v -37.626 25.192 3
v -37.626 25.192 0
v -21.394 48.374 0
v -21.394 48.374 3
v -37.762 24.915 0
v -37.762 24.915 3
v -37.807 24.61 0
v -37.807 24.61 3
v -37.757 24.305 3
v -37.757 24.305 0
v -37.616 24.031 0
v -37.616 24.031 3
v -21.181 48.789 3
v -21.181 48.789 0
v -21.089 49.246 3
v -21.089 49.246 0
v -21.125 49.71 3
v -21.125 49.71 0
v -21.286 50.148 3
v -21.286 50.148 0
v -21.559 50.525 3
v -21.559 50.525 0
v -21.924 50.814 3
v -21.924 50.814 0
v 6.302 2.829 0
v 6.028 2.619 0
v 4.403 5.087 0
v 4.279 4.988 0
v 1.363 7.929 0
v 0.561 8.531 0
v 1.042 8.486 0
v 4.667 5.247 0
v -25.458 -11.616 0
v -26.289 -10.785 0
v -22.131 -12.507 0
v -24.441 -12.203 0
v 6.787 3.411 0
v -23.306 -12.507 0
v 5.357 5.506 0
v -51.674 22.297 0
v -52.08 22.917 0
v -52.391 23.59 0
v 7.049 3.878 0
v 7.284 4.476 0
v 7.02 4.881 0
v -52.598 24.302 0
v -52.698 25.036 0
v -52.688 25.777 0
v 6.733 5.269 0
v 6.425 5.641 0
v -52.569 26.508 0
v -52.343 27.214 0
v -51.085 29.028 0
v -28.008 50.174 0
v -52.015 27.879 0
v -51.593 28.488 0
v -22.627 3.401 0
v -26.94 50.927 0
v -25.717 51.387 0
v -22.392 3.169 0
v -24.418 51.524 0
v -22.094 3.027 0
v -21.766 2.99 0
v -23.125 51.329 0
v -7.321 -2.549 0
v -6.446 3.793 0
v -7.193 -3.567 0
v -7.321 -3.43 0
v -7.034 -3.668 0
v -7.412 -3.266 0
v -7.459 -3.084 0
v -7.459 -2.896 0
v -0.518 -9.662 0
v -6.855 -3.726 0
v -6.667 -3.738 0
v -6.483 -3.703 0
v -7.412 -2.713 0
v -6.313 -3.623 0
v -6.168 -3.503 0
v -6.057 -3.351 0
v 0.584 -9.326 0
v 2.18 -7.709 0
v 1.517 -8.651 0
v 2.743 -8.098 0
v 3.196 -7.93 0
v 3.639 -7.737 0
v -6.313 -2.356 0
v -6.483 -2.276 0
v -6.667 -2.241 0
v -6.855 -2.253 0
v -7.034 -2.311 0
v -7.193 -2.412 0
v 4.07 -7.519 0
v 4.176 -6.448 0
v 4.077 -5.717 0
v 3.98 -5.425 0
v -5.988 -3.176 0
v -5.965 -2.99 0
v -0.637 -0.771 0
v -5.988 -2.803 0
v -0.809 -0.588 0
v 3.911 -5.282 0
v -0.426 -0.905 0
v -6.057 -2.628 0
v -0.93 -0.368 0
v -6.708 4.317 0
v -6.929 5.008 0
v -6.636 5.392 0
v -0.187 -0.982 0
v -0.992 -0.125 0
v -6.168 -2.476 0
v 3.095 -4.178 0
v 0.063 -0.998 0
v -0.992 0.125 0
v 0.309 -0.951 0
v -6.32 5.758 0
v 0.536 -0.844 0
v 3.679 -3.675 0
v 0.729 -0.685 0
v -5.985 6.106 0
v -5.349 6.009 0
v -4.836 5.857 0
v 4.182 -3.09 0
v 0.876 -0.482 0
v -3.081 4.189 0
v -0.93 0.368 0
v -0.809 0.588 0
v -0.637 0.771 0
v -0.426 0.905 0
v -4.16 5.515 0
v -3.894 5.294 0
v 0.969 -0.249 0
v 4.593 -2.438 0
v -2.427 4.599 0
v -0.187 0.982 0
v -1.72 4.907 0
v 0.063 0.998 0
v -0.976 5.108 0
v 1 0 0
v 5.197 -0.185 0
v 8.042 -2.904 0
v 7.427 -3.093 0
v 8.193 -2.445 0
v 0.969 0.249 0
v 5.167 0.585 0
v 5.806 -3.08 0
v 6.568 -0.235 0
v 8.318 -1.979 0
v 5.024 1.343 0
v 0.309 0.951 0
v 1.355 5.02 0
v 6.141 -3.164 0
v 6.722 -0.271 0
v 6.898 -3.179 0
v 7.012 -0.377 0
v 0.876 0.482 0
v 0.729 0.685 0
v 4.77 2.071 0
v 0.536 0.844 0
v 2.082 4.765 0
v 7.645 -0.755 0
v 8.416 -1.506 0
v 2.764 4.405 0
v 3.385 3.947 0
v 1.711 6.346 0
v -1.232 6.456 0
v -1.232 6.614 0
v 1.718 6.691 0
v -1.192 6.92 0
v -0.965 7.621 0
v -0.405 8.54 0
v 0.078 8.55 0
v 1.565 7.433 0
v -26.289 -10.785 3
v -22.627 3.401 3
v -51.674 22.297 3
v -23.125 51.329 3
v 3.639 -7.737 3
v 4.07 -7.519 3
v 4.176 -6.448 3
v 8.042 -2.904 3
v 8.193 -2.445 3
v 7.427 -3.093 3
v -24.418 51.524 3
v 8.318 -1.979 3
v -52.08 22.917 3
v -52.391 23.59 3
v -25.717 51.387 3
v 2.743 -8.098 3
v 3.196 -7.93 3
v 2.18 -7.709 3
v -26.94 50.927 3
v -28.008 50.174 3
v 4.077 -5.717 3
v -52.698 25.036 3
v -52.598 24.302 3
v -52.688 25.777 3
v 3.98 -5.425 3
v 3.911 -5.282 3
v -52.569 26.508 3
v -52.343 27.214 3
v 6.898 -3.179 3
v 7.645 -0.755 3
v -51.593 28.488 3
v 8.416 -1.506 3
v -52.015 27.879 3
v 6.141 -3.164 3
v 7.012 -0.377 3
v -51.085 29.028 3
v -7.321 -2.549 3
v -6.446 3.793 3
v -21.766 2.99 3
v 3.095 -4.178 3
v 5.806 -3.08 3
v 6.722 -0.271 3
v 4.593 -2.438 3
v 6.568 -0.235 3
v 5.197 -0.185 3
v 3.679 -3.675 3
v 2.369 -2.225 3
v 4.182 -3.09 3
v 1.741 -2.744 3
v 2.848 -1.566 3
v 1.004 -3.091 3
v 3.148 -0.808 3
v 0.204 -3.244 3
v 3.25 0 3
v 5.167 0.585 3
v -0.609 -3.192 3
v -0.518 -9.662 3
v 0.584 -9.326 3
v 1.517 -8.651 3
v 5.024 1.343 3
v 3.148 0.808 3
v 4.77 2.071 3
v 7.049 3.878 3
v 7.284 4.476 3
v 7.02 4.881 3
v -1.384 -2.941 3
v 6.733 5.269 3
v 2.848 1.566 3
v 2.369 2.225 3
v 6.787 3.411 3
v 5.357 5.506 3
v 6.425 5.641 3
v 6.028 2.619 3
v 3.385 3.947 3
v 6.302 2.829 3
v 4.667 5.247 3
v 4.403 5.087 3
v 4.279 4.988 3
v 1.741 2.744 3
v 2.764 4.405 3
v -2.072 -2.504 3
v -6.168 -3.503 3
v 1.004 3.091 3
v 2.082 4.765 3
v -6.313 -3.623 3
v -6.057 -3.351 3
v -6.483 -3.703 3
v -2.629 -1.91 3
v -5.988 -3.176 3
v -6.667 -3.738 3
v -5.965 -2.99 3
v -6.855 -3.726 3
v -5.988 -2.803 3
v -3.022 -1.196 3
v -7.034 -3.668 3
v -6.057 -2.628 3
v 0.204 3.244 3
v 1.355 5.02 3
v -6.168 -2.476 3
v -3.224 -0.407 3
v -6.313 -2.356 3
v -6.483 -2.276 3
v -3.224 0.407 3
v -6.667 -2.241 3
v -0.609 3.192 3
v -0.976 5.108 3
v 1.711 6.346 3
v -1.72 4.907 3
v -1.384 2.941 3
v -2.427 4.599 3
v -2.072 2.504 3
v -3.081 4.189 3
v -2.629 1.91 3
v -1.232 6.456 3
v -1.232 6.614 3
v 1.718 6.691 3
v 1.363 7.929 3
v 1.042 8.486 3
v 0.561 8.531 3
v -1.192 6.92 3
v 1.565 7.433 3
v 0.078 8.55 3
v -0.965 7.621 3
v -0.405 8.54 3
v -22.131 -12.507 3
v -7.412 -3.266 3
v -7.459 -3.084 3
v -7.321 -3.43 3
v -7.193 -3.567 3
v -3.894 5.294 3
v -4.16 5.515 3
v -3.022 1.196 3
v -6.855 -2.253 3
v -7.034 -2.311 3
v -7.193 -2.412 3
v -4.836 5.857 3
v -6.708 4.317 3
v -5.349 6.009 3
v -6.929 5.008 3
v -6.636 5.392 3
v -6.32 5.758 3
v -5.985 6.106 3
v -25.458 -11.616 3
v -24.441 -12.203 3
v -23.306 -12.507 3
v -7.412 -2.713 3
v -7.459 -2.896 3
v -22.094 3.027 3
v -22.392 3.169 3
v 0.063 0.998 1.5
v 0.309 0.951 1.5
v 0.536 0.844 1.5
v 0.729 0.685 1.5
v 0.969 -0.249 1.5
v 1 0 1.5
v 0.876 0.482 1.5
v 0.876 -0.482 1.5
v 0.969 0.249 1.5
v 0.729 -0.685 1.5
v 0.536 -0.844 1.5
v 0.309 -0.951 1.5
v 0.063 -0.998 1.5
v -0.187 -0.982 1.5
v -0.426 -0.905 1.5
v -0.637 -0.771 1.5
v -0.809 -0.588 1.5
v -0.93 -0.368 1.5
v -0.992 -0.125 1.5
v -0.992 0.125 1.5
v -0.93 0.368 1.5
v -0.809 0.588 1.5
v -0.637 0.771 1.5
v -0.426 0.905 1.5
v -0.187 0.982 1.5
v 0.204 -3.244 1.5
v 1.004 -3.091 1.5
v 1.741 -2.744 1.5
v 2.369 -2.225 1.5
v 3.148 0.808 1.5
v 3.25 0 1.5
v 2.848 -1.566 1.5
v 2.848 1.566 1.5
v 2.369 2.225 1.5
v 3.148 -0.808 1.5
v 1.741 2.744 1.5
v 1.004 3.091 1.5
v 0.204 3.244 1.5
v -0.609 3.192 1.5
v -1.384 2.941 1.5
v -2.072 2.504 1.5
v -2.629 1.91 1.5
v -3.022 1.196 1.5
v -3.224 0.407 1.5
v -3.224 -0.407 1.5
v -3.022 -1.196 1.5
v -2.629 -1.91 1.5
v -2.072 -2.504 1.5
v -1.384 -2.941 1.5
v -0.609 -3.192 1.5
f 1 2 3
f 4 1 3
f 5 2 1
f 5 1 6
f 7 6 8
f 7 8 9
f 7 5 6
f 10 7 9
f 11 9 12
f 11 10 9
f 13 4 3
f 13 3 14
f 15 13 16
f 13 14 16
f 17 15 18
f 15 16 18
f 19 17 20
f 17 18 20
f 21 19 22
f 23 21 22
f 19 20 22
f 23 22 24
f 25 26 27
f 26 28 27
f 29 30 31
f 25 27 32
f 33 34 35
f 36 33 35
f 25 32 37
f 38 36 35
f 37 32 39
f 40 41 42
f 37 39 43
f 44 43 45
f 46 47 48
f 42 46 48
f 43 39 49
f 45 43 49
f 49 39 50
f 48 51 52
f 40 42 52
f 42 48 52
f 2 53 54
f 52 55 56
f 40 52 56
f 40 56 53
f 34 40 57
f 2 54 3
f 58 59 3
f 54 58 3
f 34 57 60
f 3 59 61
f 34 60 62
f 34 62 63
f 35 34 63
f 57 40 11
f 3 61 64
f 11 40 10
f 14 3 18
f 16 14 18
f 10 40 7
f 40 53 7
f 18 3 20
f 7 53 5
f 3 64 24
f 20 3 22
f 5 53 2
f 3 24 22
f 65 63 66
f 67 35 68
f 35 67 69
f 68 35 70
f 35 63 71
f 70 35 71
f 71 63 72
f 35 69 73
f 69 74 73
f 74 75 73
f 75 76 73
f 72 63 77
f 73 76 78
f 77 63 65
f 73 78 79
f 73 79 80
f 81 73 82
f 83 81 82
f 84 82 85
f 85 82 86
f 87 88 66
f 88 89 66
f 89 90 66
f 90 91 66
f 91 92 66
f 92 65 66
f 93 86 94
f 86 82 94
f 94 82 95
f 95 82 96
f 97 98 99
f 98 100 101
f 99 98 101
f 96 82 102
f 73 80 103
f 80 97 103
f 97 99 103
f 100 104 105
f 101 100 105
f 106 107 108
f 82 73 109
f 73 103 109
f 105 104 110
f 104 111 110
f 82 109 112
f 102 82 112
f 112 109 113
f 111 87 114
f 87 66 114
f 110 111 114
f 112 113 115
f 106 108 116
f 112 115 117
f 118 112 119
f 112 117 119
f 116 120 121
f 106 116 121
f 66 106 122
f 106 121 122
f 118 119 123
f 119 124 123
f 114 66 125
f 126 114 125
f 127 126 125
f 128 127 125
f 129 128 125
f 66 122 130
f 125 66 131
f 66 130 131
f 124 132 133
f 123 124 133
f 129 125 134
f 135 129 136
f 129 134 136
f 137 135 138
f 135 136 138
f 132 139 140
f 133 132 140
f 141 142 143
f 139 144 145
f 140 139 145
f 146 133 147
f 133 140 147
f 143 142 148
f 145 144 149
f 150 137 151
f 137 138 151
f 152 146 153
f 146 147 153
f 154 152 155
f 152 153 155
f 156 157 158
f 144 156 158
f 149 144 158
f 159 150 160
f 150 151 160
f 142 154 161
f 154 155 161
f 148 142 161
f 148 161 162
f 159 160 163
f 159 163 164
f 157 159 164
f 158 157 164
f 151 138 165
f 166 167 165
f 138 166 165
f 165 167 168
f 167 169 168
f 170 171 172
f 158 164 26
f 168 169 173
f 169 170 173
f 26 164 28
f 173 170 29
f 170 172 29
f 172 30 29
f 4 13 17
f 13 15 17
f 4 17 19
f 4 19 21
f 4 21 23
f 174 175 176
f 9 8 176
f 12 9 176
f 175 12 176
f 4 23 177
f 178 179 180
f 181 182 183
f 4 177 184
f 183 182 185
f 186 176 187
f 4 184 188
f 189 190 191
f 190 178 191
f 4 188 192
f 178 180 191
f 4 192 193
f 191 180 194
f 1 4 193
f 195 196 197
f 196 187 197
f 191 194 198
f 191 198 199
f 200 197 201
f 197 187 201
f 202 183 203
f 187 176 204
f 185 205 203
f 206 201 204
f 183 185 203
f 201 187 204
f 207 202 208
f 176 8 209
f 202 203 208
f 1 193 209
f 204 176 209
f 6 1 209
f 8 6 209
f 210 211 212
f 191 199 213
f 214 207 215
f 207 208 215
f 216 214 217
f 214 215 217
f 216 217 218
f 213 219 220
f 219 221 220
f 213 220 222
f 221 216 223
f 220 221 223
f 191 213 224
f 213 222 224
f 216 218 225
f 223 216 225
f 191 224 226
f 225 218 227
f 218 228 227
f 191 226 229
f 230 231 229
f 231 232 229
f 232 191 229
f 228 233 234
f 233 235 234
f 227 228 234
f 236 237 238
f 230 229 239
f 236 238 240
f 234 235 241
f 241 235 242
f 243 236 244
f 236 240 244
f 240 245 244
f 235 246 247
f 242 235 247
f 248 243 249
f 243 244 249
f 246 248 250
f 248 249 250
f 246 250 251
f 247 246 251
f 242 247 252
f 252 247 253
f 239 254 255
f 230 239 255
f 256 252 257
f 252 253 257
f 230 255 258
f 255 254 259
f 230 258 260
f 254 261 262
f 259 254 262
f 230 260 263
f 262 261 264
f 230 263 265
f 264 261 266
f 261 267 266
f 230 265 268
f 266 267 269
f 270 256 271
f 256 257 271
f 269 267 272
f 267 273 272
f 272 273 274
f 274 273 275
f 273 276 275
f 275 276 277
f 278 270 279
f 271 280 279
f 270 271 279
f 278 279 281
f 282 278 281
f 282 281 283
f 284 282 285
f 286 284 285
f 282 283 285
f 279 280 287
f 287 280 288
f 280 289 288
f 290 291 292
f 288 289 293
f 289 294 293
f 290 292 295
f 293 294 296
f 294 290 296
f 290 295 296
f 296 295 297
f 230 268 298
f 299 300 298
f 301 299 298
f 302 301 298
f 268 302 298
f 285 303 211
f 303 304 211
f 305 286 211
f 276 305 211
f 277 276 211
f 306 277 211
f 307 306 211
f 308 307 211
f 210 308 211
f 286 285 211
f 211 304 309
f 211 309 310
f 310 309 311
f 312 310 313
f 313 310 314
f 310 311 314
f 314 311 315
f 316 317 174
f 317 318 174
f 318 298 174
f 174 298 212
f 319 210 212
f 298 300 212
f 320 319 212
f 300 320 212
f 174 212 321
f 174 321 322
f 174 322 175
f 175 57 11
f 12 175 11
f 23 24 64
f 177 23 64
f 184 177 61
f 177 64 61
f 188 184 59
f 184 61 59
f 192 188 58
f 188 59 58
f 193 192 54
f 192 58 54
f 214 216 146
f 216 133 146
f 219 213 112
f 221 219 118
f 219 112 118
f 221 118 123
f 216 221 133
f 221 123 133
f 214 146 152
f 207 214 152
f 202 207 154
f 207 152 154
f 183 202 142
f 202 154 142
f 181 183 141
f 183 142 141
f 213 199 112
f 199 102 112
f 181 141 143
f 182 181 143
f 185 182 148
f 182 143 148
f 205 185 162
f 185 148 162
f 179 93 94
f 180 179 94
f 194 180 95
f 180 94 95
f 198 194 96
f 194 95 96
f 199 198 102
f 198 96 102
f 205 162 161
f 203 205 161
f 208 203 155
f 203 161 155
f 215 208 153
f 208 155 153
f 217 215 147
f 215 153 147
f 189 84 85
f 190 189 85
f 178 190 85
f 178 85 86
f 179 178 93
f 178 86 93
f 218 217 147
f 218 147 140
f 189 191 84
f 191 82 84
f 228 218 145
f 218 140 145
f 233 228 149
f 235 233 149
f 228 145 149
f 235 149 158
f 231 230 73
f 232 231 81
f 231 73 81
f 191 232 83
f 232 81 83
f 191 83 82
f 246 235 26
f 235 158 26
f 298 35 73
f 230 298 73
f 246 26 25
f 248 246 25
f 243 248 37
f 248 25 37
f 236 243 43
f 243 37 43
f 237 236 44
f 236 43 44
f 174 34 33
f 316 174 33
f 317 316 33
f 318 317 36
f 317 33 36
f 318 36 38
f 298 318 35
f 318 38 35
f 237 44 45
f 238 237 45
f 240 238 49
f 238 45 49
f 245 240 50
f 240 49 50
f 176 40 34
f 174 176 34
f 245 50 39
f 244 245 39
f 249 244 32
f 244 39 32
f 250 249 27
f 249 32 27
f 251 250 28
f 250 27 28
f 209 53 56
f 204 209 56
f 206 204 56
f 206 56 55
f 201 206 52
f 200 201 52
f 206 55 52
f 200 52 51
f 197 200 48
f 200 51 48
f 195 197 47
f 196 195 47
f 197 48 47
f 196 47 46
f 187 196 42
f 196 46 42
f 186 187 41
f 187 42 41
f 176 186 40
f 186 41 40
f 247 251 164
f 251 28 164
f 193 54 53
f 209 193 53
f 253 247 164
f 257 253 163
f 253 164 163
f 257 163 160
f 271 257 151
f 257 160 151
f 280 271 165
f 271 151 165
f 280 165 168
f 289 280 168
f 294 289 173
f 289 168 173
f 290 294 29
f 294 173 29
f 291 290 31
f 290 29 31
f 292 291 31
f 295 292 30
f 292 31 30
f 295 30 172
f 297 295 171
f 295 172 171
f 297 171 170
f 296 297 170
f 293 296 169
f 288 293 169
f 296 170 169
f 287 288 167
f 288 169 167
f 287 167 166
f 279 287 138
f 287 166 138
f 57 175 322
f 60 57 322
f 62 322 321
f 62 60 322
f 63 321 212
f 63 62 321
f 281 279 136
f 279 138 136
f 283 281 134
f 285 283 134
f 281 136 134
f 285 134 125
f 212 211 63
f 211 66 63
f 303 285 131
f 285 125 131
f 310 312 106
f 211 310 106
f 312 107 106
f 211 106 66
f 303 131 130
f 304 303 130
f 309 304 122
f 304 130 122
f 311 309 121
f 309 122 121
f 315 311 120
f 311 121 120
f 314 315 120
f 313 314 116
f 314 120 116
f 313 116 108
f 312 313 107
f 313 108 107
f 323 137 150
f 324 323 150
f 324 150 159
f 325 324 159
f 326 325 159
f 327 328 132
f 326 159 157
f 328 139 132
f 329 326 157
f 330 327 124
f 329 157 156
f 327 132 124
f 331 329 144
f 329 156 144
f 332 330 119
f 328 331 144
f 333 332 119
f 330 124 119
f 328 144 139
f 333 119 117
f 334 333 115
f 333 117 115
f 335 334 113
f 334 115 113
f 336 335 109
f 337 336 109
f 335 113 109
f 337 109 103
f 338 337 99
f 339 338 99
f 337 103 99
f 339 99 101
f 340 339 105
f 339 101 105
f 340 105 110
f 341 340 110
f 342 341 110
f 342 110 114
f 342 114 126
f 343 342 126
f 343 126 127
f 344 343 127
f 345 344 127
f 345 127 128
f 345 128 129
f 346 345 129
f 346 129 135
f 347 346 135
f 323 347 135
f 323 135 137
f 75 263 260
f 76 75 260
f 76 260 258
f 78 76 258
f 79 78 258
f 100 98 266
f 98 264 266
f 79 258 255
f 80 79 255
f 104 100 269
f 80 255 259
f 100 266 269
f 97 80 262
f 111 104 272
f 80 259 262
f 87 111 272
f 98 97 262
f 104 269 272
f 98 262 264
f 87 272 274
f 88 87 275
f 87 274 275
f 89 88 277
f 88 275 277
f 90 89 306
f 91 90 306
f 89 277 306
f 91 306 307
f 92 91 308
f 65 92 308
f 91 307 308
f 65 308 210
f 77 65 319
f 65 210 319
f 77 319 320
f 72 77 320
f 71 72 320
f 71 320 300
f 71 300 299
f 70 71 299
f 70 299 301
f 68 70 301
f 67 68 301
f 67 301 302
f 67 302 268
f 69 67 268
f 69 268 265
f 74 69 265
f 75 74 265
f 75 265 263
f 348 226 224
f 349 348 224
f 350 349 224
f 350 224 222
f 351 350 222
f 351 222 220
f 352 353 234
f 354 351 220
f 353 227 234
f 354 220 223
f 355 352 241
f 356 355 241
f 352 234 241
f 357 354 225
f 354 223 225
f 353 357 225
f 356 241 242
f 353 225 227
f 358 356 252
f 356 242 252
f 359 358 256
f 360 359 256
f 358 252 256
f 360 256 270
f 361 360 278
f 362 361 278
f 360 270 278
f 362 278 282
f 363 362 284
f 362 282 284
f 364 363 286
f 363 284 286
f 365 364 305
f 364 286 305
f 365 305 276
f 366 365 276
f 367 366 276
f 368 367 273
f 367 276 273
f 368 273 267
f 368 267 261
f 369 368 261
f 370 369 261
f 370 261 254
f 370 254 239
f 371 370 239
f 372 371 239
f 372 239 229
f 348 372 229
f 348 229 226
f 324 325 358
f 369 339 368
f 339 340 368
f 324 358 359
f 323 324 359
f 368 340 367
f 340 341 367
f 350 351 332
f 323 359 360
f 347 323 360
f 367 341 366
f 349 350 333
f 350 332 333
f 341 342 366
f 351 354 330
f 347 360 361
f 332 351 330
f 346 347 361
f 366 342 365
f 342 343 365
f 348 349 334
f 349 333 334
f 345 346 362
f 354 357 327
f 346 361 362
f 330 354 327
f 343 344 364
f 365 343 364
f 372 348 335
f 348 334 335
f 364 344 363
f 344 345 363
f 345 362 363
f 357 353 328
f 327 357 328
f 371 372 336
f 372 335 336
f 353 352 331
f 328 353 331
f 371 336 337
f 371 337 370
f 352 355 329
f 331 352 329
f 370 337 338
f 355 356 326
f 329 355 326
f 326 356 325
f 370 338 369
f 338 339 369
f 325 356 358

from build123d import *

# Parameters (mm, degrees)
PAD_DEPTH                                 = 3
EXTRUDE_DEPTH                             = 3
EXTRUDE_ONTO_INVOLUTEGEAR_PLACEMENT_ANGLE = -15
SKETCH001_R                               = 3.25
POCKET_DEPTH                              = 1.5
SKETCH002_R                               = 1
POCKET001_DEPTH                           = 3.001
SKETCH003_R                               = 0.75
POCKET002_DEPTH                           = 3.001


with BuildPart() as claw_body:
    # Sketch → Pad (new body)
    with BuildSketch(Plane.XY):
        with BuildLine():
            ThreePointArc((2.197615, -4.7128), (3.983431, 3.342496), (-4.259591, 2.982597))
            Line((-5.488319, 3.842962), (-4.259591, 2.982597))
            Line((-5.488319, 3.842962), (-21.76598, 2.989886))
            ThreePointArc((-22.627333, 3.40073), (-22.248827, 3.08593), (-21.76598, 2.989886))
            Line((-22.627333, 3.40073), (-37.615857, 24.030664))
            ThreePointArc((-37.625992, 25.192025), (-37.806802, 24.609722), (-37.615857, 24.030664))
            Line((-37.625992, 25.192025), (-21.393779, 48.374028))
            ThreePointArc((-21.393779, 48.374028), (-21.125112, 49.710122), (-21.924071, 50.814201))
            ThreePointArc((-21.924071, 50.814201), (-25.071791, 51.496726), (-28.008332, 50.173585))
            Line((-28.008332, 50.173585), (-51.085112, 29.027611))
            ThreePointArc((-51.085112, 29.027611), (-52.688135, 25.777003), (-51.673928, 22.297417))
            Line((-51.673928, 22.297417), (-26.288576, -10.785417))
            ThreePointArc((-26.288576, -10.785417), (-24.440562, -12.203448), (-22.131119, -12.507492))
            Line((-22.131119, -12.507492), (-0.517621, -9.662021))
            ThreePointArc((-0.517621, -9.662021), (2.094081, -7.875425), (2.197615, -4.7128))
        make_face()
    extrude(amount=PAD_DEPTH)


with BuildPart() as horn_drill:
    # InvoluteGear as drawn → Extrude (new)
    with BuildSketch(Plane.XY):
        with BuildLine():
            Line((4.810602, -1.107072), (6.405135, -1.472675))
            add(Edge.make_bspline(
                [(6.405135, -1.472675), (6.508382, -1.483345), (6.922829, -1.512197), (7.670072, -1.341281), (8.519169, -0.723794)],
                knots=[0, 0, 0, 0, 0, 1, 1, 1, 1, 1], degree=4))
            ThreePointArc((8.519169, -0.723794), (8.54986, 0), (8.519169, 0.723794))
            add(Edge.make_bspline(
                [(8.519169, 0.723794), (7.670072, 1.341281), (6.922829, 1.512197), (6.508382, 1.483345), (6.405135, 1.472675)],
                knots=[0, 0, 0, 0, 0, 1, 1, 1, 1, 1], degree=4))
            Line((6.405135, 1.472675), (4.810602, 1.107072))
            ThreePointArc((4.810602, 1.107072), (4.31977, 1.170473), (3.988644, 1.538293))
            ThreePointArc((3.988644, 1.538293), (3.851642, 1.854853), (3.689565, 2.159338))
            ThreePointArc((3.689565, 2.159338), (3.608445, 2.647554), (3.864905, 3.070832))
            Line((3.864905, 3.070832), (5.14492, 4.089539))
            add(Edge.make_bspline(
                [(5.14492, 4.089539), (5.217636, 4.163608), (5.498597, 4.469646), (5.830867, 5.160429), (5.8775, 6.209276)],
                knots=[0, 0, 0, 0, 0, 1, 1, 1, 1, 1], degree=4))
            ThreePointArc((5.8775, 6.209276), (5.330751, 6.68455), (4.74573, 7.111832))
            add(Edge.make_bspline(
                [(4.74573, 7.111832), (3.733556, 6.832978), (3.13403, 6.355326), (2.898184, 6.013309), (2.842153, 5.925934)],
                knots=[0, 0, 0, 0, 0, 1, 1, 1, 1, 1], degree=4))
            Line((2.842153, 5.925934), (2.133817, 4.451328))
            ThreePointArc((2.133817, 4.451328), (1.77822, 4.10711), (1.284193, 4.077557))
            ThreePointArc((1.284193, 4.077557), (0.951277, 4.167817), (0.612168, 4.230943))
            ThreePointArc((0.612168, 4.230943), (0.179887, 4.471919), (0.008856, 4.936337))
            Line((0.008856, 4.936337), (0.010475, 6.572246))
            add(Edge.make_bspline(
                [(0.010475, 6.572246), (-0.002097, 6.675279), (-0.066191, 7.085755), (-0.3991, 7.77623), (-1.190047, 8.466635)],
                knots=[0, 0, 0, 0, 0, 1, 1, 1, 1, 1], degree=4))
            ThreePointArc((-1.190047, 8.466635), (-1.902523, 8.335497), (-2.60134, 8.144516))
            add(Edge.make_bspline(
                [(-2.60134, 8.144516), (-3.014403, 7.179304), (-3.014758, 6.412764), (-2.894406, 6.015128), (-2.861029, 5.916844)],
                knots=[0, 0, 0, 0, 0, 1, 1, 1, 1, 1], degree=4))
            Line((-2.861029, 5.916844), (-2.149775, 4.443643))
            ThreePointArc((-2.149775, 4.443643), (-2.102366, 3.951009), (-2.387281, 3.546338))
            ThreePointArc((-2.387281, 3.546338), (-2.665419, 3.34233), (-2.926204, 3.116562))
            ThreePointArc((-2.926204, 3.116562), (-3.384129, 2.928837), (-3.853862, 3.08468))
            Line((-3.853862, 3.08468), (-5.131858, 4.105918))
            add(Edge.make_bspline(
                [(-5.131858, 4.105918), (-5.220251, 4.160329), (-5.581136, 4.366146), (-6.328536, 4.536371), (-7.361464, 4.348444)],
                knots=[0, 0, 0, 0, 0, 1, 1, 1, 1, 1], degree=4))
            ThreePointArc((-7.361464, 4.348444), (-7.703158, 3.709645), (-7.989548, 3.044213))
            add(Edge.make_bspline(
                [(-7.989548, 3.044213), (-7.492456, 2.119467), (-6.893372, 1.64126), (-6.507449, 1.487434), (-6.409797, 1.45225)],
                knots=[0, 0, 0, 0, 0, 1, 1, 1, 1, 1], degree=4))
            Line((-6.409797, 1.45225), (-4.814543, 1.089804))
            ThreePointArc((-4.814543, 1.089804), (-4.399827, 0.819718), (-4.261084, 0.344654))
            ThreePointArc((-4.261084, 0.344654), (-4.275, 0), (-4.261084, -0.344654))
            ThreePointArc((-4.261084, -0.344654), (-4.399827, -0.819718), (-4.814543, -1.089804))
            Line((-4.814543, -1.089804), (-6.409797, -1.45225))
            add(Edge.make_bspline(
                [(-6.409797, -1.45225), (-6.507449, -1.487434), (-6.893372, -1.64126), (-7.492456, -2.119467), (-7.989548, -3.044213)],
                knots=[0, 0, 0, 0, 0, 1, 1, 1, 1, 1], degree=4))
            ThreePointArc((-7.989548, -3.044213), (-7.703158, -3.709645), (-7.361464, -4.348444))
            add(Edge.make_bspline(
                [(-7.361464, -4.348444), (-6.328536, -4.536371), (-5.581136, -4.366146), (-5.220251, -4.160329), (-5.131858, -4.105918)],
                knots=[0, 0, 0, 0, 0, 1, 1, 1, 1, 1], degree=4))
            Line((-5.131858, -4.105918), (-3.853862, -3.08468))
            ThreePointArc((-3.853862, -3.08468), (-3.384129, -2.928837), (-2.926204, -3.116562))
            ThreePointArc((-2.926204, -3.116562), (-2.665419, -3.34233), (-2.387281, -3.546338))
            ThreePointArc((-2.387281, -3.546338), (-2.102366, -3.951009), (-2.149775, -4.443643))
            Line((-2.149775, -4.443643), (-2.861029, -5.916844))
            add(Edge.make_bspline(
                [(-2.861029, -5.916844), (-2.894406, -6.015128), (-3.014758, -6.412764), (-3.014403, -7.179304), (-2.60134, -8.144516)],
                knots=[0, 0, 0, 0, 0, 1, 1, 1, 1, 1], degree=4))
            ThreePointArc((-2.60134, -8.144516), (-1.902523, -8.335497), (-1.190047, -8.466635))
            add(Edge.make_bspline(
                [(-1.190047, -8.466635), (-0.3991, -7.77623), (-0.066191, -7.085755), (-0.002097, -6.675279), (0.010475, -6.572246)],
                knots=[0, 0, 0, 0, 0, 1, 1, 1, 1, 1], degree=4))
            Line((0.010475, -6.572246), (0.008856, -4.936337))
            ThreePointArc((0.008856, -4.936337), (0.179887, -4.471919), (0.612168, -4.230943))
            ThreePointArc((0.612168, -4.230943), (0.951277, -4.167817), (1.284193, -4.077557))
            ThreePointArc((1.284193, -4.077557), (1.77822, -4.10711), (2.133817, -4.451328))
            Line((2.133817, -4.451328), (2.842153, -5.925934))
            add(Edge.make_bspline(
                [(2.842153, -5.925934), (2.898184, -6.013309), (3.13403, -6.355326), (3.733556, -6.832978), (4.74573, -7.111832)],
                knots=[0, 0, 0, 0, 0, 1, 1, 1, 1, 1], degree=4))
            ThreePointArc((4.74573, -7.111832), (5.330751, -6.68455), (5.8775, -6.209276))
            add(Edge.make_bspline(
                [(5.8775, -6.209276), (5.830867, -5.160429), (5.498597, -4.469646), (5.217636, -4.163608), (5.14492, -4.089539)],
                knots=[0, 0, 0, 0, 0, 1, 1, 1, 1, 1], degree=4))
            Line((5.14492, -4.089539), (3.864905, -3.070832))
            ThreePointArc((3.864905, -3.070832), (3.608445, -2.647554), (3.689565, -2.159338))
            ThreePointArc((3.689565, -2.159338), (3.851642, -1.854853), (3.988644, -1.538293))
            ThreePointArc((3.988644, -1.538293), (4.31977, -1.170473), (4.810602, -1.107072))
        make_face()
    extrude(amount=EXTRUDE_DEPTH)


with BuildPart() as horn_drill_1:
    # Extrude onto InvoluteGear placement: moved
    add(horn_drill.part.rotate(Axis((0, 0, 0), (0, 0, 1)), EXTRUDE_ONTO_INVOLUTEGEAR_PLACEMENT_ANGLE))

    # Fusion: union claw-body
    add(claw_body.part)

    # Sketch001 → Pocket (cut)
    with BuildSketch(Plane.XY.offset(3)):
        Circle(SKETCH001_R)
    extrude(amount=-POCKET_DEPTH, mode=Mode.SUBTRACT)

    # Sketch002 → Pocket001 (cut, through all)
    with BuildSketch(Plane(origin=(0, 0, 0), x_dir=(1, 0, 0), z_dir=(0, 0, -1))):
        Circle(SKETCH002_R)
    extrude(amount=-POCKET001_DEPTH, mode=Mode.SUBTRACT)

    # Sketch003 → Pocket002 (cut, through all)
    with BuildSketch(Plane.XY.offset(3)):
        with Locations((-6.714559, -2.989514)):
            Circle(SKETCH003_R)
    extrude(amount=-POCKET002_DEPTH, mode=Mode.SUBTRACT)


solid = horn_drill_1.part
